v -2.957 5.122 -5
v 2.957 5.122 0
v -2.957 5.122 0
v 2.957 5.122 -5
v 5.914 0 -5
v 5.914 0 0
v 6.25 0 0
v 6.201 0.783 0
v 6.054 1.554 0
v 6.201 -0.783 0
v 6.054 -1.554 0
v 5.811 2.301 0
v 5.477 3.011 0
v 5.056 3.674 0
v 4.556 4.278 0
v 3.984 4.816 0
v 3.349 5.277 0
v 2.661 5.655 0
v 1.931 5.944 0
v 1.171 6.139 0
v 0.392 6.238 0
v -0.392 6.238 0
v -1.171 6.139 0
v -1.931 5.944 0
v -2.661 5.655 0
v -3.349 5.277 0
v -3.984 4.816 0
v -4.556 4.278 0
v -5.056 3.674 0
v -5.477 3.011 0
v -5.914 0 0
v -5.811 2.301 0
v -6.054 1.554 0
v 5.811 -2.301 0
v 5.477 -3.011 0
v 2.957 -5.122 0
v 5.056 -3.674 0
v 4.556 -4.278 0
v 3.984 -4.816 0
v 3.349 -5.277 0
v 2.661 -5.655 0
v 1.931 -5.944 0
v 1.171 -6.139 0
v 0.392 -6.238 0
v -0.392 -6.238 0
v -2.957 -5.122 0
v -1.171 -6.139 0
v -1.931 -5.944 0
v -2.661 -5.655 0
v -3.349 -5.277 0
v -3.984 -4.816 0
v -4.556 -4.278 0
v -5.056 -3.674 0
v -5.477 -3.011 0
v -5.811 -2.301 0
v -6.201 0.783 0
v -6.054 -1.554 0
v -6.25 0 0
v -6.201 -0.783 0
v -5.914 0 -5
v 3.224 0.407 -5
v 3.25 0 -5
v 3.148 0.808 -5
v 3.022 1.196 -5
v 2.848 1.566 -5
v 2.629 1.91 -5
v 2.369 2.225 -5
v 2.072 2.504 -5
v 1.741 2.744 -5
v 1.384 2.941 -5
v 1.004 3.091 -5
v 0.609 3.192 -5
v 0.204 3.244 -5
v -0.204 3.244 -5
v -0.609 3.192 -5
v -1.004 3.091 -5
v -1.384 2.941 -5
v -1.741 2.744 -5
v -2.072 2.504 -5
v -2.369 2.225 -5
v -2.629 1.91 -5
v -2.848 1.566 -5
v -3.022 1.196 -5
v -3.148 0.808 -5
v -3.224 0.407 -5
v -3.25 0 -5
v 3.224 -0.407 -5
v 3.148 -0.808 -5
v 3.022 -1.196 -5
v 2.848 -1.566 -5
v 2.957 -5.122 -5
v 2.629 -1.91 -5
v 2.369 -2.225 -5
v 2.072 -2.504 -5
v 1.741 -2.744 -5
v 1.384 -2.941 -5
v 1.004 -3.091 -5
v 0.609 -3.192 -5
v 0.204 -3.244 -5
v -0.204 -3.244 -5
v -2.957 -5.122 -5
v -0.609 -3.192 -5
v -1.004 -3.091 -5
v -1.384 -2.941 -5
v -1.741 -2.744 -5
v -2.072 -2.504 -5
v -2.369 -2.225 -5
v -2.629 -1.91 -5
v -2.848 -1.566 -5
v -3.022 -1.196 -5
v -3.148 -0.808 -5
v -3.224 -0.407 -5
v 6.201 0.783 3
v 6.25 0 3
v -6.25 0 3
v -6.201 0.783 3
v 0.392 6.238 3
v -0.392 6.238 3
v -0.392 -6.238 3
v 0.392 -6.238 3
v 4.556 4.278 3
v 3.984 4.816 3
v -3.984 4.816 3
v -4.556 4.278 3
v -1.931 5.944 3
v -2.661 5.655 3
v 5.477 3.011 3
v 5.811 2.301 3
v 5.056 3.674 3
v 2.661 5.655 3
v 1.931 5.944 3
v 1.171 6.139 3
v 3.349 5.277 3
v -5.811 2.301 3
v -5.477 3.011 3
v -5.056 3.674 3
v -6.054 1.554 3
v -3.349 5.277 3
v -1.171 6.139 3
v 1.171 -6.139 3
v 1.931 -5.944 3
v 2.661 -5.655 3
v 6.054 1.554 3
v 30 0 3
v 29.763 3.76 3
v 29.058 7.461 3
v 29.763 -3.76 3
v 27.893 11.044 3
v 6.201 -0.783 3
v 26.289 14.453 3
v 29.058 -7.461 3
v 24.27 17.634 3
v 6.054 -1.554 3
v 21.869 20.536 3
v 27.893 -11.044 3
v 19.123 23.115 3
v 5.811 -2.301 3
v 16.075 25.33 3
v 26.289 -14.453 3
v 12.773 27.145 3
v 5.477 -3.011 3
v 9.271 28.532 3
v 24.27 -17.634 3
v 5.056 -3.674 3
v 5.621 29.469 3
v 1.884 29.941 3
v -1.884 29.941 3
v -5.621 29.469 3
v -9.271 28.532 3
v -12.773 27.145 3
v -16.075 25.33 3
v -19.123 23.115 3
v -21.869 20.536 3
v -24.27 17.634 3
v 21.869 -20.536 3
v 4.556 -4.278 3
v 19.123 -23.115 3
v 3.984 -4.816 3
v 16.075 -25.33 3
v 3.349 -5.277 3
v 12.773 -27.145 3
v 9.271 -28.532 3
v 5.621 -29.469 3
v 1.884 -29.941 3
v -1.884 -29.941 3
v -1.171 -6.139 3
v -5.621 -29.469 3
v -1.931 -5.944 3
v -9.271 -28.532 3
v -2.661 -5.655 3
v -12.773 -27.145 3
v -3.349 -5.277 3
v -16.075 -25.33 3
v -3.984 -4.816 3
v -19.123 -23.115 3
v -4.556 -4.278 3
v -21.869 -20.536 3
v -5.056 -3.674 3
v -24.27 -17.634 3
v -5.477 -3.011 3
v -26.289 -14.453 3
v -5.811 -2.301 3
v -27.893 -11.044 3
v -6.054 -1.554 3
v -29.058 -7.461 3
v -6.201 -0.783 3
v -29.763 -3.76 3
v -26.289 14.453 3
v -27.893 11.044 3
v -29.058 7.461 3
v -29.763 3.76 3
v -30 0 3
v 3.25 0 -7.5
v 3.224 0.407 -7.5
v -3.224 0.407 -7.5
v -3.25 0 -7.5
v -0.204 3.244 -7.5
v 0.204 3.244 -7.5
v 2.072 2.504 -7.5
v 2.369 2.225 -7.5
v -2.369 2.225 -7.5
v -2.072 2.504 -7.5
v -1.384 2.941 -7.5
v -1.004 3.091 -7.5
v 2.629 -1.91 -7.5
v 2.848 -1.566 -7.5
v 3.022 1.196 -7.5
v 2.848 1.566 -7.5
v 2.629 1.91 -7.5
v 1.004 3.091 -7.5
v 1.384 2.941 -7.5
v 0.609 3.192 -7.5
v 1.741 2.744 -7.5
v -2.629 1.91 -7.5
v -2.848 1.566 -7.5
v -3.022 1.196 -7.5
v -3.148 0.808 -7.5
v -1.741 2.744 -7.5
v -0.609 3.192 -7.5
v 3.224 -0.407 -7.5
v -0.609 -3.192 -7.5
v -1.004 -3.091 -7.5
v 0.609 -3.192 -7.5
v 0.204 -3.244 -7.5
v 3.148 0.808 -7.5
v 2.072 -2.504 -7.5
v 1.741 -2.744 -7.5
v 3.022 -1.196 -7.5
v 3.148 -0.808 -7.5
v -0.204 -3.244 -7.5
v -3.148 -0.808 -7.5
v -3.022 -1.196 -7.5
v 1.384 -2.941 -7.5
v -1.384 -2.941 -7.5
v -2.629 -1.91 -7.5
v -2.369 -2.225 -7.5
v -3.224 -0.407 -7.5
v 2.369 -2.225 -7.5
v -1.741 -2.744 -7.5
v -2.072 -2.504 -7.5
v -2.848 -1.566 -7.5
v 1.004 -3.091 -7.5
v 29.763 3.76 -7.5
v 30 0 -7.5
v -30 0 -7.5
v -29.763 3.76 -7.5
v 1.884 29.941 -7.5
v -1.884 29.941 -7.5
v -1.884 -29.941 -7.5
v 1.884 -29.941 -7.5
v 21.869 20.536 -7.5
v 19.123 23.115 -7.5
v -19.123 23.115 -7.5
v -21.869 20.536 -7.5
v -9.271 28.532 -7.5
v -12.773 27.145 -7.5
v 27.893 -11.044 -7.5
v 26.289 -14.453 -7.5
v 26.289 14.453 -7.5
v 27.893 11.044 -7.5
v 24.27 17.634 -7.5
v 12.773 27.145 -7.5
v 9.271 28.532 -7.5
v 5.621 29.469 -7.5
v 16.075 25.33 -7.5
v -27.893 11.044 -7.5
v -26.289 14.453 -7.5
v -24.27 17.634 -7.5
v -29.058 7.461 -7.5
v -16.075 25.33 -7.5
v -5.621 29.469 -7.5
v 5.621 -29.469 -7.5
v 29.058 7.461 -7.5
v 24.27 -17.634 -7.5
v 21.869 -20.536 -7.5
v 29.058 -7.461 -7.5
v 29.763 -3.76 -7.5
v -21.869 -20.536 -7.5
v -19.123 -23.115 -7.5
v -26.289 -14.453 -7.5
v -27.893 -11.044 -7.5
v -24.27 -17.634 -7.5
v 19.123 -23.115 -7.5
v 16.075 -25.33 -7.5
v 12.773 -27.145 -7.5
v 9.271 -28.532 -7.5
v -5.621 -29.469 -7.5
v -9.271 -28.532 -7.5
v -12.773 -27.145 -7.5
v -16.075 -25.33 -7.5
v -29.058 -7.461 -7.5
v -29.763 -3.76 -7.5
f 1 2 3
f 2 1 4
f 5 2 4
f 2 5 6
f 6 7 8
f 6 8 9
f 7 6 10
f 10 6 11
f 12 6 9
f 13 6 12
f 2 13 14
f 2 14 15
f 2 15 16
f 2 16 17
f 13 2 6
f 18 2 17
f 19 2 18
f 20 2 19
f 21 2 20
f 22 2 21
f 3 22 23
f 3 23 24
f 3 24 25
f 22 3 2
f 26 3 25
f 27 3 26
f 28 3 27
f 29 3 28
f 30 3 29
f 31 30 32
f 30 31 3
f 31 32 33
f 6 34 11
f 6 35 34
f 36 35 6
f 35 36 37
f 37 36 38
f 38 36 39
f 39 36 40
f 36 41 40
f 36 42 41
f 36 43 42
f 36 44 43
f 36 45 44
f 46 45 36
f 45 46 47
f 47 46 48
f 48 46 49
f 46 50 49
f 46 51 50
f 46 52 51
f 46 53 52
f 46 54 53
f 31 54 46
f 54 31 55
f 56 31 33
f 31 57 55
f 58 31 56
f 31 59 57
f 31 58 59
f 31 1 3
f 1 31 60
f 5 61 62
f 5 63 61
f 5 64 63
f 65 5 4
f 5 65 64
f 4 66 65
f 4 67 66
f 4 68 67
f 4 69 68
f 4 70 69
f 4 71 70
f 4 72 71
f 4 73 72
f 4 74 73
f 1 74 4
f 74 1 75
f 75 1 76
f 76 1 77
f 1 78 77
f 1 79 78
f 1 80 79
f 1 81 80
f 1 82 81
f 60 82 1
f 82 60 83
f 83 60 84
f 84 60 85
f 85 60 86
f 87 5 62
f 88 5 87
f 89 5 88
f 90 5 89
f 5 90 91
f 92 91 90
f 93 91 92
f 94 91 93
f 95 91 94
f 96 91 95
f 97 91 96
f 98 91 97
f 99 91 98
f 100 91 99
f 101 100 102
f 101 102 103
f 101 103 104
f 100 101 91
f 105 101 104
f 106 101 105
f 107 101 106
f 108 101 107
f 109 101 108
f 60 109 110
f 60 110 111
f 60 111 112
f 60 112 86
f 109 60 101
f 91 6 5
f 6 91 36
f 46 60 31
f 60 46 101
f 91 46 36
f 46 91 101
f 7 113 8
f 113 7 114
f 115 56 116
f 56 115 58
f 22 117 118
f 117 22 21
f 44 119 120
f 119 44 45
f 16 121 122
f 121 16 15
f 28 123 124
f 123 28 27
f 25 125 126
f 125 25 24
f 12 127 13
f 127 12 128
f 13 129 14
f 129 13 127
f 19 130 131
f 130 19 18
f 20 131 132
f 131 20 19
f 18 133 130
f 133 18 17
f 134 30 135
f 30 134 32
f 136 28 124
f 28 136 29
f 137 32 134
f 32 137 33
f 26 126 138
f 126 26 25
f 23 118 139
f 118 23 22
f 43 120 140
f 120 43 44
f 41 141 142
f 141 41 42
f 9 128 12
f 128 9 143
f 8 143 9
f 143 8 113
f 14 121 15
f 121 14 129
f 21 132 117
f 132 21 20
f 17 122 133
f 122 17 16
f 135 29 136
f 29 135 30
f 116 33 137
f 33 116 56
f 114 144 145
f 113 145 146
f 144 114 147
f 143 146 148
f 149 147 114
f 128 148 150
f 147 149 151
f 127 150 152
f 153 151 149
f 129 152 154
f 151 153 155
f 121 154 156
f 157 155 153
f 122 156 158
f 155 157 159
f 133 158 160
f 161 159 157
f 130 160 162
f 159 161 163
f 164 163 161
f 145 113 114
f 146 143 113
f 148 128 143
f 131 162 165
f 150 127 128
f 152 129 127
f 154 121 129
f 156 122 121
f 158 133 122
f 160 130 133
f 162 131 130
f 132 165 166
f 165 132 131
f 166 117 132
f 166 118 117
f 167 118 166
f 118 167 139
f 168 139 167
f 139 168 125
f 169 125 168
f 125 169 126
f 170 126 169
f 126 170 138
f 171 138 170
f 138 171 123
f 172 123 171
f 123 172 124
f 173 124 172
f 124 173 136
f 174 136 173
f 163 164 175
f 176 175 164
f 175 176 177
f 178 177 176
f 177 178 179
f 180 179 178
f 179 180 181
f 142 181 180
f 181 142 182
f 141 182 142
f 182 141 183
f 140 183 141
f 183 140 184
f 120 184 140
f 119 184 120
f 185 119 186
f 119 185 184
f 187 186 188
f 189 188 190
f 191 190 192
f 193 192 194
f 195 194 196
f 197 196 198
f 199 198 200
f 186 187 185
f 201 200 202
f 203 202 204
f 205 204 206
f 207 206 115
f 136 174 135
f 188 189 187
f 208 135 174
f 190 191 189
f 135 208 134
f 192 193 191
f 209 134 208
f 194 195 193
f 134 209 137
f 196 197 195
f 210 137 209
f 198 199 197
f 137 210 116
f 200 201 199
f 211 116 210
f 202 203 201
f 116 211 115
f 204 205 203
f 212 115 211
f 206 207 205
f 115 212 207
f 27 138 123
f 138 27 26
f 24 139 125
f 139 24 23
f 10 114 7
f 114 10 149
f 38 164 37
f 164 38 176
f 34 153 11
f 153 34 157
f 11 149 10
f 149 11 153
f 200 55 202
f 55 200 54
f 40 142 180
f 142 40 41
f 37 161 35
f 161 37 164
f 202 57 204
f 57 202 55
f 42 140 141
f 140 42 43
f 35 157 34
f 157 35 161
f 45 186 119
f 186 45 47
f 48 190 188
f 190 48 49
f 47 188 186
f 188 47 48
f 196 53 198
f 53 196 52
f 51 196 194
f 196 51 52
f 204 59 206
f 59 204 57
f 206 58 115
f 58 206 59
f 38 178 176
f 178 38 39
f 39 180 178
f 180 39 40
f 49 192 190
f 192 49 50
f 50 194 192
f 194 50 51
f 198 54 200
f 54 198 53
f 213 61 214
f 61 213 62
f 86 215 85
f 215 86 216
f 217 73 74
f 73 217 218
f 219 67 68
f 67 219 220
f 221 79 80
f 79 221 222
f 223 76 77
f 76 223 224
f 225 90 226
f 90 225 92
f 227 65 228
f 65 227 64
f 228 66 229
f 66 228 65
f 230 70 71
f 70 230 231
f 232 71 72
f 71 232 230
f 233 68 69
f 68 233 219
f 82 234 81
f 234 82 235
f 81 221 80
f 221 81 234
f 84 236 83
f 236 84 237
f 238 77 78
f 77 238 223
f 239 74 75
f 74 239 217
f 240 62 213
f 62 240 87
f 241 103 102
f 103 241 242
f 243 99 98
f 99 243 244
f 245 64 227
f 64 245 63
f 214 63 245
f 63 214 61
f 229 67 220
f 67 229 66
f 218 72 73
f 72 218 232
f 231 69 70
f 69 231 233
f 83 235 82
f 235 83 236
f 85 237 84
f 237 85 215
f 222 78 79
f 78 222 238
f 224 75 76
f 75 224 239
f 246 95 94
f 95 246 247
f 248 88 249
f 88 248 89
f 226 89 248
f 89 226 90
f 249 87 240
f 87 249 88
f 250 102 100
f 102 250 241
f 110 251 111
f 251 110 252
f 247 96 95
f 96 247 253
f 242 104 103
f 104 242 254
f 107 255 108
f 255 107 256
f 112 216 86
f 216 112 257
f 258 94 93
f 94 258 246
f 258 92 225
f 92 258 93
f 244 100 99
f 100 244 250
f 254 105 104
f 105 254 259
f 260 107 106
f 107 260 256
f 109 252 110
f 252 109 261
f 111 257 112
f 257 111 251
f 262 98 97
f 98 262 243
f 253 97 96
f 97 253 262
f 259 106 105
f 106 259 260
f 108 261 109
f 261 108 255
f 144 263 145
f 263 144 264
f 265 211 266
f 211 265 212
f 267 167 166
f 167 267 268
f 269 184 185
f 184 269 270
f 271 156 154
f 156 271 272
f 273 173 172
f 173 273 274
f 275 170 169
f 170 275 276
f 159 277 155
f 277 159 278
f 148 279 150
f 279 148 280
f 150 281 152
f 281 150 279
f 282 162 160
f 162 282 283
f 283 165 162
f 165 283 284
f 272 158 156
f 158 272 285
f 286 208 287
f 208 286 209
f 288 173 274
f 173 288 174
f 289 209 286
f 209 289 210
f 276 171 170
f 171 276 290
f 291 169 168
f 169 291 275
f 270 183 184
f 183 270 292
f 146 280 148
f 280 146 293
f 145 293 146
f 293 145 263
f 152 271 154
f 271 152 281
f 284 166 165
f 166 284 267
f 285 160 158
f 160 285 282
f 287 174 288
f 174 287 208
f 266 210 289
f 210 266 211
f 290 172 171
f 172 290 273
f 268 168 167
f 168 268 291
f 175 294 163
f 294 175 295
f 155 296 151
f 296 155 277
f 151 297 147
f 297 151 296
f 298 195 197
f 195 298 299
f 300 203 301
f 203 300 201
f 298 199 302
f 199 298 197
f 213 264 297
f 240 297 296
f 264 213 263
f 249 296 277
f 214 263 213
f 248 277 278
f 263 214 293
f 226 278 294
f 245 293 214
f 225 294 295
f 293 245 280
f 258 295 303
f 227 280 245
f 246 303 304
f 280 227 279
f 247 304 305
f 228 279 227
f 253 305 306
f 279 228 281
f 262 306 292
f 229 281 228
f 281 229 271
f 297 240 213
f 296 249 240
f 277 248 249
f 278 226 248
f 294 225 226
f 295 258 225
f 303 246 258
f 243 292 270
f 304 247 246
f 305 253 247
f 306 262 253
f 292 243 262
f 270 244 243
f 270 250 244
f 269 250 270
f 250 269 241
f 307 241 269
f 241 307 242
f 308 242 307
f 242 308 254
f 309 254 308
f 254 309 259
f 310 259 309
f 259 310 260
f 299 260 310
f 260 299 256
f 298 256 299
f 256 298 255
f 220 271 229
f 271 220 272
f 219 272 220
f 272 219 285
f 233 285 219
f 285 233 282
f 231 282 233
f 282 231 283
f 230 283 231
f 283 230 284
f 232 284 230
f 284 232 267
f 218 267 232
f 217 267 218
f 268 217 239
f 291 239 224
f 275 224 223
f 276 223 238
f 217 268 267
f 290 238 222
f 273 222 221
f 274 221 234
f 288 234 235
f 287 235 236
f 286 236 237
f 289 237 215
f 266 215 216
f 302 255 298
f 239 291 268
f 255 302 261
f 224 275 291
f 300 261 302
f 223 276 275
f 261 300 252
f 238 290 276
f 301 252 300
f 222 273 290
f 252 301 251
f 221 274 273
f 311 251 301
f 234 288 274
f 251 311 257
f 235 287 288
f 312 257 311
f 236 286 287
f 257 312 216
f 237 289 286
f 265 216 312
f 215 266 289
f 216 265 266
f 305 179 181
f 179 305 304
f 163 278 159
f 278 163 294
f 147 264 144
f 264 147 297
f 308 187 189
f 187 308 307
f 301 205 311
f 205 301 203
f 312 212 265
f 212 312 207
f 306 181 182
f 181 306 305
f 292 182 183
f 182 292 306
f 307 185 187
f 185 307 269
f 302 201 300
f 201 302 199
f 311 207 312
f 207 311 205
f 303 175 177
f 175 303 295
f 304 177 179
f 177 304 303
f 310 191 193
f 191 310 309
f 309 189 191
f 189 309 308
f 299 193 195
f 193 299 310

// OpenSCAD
$fn = 50;

difference() {
	union() {
		translate(v = [0, 0, -7.5]) {
			cylinder(h = 10.5, r = 30.0);
		}
	}
	union() {
		translate(v = [0, 0, 0]) {
			rotate(a = [0, 0, 0]) {
				difference() {
					union() {
						translate(v = [0, 0, -5]) {
							linear_extrude(height = 5) {
								polygon(points = [[5.914249999999999, 0.0], [2.957125, 5.1218907443321156], [-2.9571249999999982, 5.1218907443321156], [-5.914249999999999, 7.242867331857232e-16], [-2.9571250000000022, -5.121890744332115], [2.9571249999999956, -5.121890744332118]]);
							}
						}
					}
					union();
				}
			}
		}
		#cylinder(h = 3, r = 6.25);
		#translate(v = [0, 0, -100.0]) {
			cylinder(h = 200, r = 3.25);
		}
	}
}
